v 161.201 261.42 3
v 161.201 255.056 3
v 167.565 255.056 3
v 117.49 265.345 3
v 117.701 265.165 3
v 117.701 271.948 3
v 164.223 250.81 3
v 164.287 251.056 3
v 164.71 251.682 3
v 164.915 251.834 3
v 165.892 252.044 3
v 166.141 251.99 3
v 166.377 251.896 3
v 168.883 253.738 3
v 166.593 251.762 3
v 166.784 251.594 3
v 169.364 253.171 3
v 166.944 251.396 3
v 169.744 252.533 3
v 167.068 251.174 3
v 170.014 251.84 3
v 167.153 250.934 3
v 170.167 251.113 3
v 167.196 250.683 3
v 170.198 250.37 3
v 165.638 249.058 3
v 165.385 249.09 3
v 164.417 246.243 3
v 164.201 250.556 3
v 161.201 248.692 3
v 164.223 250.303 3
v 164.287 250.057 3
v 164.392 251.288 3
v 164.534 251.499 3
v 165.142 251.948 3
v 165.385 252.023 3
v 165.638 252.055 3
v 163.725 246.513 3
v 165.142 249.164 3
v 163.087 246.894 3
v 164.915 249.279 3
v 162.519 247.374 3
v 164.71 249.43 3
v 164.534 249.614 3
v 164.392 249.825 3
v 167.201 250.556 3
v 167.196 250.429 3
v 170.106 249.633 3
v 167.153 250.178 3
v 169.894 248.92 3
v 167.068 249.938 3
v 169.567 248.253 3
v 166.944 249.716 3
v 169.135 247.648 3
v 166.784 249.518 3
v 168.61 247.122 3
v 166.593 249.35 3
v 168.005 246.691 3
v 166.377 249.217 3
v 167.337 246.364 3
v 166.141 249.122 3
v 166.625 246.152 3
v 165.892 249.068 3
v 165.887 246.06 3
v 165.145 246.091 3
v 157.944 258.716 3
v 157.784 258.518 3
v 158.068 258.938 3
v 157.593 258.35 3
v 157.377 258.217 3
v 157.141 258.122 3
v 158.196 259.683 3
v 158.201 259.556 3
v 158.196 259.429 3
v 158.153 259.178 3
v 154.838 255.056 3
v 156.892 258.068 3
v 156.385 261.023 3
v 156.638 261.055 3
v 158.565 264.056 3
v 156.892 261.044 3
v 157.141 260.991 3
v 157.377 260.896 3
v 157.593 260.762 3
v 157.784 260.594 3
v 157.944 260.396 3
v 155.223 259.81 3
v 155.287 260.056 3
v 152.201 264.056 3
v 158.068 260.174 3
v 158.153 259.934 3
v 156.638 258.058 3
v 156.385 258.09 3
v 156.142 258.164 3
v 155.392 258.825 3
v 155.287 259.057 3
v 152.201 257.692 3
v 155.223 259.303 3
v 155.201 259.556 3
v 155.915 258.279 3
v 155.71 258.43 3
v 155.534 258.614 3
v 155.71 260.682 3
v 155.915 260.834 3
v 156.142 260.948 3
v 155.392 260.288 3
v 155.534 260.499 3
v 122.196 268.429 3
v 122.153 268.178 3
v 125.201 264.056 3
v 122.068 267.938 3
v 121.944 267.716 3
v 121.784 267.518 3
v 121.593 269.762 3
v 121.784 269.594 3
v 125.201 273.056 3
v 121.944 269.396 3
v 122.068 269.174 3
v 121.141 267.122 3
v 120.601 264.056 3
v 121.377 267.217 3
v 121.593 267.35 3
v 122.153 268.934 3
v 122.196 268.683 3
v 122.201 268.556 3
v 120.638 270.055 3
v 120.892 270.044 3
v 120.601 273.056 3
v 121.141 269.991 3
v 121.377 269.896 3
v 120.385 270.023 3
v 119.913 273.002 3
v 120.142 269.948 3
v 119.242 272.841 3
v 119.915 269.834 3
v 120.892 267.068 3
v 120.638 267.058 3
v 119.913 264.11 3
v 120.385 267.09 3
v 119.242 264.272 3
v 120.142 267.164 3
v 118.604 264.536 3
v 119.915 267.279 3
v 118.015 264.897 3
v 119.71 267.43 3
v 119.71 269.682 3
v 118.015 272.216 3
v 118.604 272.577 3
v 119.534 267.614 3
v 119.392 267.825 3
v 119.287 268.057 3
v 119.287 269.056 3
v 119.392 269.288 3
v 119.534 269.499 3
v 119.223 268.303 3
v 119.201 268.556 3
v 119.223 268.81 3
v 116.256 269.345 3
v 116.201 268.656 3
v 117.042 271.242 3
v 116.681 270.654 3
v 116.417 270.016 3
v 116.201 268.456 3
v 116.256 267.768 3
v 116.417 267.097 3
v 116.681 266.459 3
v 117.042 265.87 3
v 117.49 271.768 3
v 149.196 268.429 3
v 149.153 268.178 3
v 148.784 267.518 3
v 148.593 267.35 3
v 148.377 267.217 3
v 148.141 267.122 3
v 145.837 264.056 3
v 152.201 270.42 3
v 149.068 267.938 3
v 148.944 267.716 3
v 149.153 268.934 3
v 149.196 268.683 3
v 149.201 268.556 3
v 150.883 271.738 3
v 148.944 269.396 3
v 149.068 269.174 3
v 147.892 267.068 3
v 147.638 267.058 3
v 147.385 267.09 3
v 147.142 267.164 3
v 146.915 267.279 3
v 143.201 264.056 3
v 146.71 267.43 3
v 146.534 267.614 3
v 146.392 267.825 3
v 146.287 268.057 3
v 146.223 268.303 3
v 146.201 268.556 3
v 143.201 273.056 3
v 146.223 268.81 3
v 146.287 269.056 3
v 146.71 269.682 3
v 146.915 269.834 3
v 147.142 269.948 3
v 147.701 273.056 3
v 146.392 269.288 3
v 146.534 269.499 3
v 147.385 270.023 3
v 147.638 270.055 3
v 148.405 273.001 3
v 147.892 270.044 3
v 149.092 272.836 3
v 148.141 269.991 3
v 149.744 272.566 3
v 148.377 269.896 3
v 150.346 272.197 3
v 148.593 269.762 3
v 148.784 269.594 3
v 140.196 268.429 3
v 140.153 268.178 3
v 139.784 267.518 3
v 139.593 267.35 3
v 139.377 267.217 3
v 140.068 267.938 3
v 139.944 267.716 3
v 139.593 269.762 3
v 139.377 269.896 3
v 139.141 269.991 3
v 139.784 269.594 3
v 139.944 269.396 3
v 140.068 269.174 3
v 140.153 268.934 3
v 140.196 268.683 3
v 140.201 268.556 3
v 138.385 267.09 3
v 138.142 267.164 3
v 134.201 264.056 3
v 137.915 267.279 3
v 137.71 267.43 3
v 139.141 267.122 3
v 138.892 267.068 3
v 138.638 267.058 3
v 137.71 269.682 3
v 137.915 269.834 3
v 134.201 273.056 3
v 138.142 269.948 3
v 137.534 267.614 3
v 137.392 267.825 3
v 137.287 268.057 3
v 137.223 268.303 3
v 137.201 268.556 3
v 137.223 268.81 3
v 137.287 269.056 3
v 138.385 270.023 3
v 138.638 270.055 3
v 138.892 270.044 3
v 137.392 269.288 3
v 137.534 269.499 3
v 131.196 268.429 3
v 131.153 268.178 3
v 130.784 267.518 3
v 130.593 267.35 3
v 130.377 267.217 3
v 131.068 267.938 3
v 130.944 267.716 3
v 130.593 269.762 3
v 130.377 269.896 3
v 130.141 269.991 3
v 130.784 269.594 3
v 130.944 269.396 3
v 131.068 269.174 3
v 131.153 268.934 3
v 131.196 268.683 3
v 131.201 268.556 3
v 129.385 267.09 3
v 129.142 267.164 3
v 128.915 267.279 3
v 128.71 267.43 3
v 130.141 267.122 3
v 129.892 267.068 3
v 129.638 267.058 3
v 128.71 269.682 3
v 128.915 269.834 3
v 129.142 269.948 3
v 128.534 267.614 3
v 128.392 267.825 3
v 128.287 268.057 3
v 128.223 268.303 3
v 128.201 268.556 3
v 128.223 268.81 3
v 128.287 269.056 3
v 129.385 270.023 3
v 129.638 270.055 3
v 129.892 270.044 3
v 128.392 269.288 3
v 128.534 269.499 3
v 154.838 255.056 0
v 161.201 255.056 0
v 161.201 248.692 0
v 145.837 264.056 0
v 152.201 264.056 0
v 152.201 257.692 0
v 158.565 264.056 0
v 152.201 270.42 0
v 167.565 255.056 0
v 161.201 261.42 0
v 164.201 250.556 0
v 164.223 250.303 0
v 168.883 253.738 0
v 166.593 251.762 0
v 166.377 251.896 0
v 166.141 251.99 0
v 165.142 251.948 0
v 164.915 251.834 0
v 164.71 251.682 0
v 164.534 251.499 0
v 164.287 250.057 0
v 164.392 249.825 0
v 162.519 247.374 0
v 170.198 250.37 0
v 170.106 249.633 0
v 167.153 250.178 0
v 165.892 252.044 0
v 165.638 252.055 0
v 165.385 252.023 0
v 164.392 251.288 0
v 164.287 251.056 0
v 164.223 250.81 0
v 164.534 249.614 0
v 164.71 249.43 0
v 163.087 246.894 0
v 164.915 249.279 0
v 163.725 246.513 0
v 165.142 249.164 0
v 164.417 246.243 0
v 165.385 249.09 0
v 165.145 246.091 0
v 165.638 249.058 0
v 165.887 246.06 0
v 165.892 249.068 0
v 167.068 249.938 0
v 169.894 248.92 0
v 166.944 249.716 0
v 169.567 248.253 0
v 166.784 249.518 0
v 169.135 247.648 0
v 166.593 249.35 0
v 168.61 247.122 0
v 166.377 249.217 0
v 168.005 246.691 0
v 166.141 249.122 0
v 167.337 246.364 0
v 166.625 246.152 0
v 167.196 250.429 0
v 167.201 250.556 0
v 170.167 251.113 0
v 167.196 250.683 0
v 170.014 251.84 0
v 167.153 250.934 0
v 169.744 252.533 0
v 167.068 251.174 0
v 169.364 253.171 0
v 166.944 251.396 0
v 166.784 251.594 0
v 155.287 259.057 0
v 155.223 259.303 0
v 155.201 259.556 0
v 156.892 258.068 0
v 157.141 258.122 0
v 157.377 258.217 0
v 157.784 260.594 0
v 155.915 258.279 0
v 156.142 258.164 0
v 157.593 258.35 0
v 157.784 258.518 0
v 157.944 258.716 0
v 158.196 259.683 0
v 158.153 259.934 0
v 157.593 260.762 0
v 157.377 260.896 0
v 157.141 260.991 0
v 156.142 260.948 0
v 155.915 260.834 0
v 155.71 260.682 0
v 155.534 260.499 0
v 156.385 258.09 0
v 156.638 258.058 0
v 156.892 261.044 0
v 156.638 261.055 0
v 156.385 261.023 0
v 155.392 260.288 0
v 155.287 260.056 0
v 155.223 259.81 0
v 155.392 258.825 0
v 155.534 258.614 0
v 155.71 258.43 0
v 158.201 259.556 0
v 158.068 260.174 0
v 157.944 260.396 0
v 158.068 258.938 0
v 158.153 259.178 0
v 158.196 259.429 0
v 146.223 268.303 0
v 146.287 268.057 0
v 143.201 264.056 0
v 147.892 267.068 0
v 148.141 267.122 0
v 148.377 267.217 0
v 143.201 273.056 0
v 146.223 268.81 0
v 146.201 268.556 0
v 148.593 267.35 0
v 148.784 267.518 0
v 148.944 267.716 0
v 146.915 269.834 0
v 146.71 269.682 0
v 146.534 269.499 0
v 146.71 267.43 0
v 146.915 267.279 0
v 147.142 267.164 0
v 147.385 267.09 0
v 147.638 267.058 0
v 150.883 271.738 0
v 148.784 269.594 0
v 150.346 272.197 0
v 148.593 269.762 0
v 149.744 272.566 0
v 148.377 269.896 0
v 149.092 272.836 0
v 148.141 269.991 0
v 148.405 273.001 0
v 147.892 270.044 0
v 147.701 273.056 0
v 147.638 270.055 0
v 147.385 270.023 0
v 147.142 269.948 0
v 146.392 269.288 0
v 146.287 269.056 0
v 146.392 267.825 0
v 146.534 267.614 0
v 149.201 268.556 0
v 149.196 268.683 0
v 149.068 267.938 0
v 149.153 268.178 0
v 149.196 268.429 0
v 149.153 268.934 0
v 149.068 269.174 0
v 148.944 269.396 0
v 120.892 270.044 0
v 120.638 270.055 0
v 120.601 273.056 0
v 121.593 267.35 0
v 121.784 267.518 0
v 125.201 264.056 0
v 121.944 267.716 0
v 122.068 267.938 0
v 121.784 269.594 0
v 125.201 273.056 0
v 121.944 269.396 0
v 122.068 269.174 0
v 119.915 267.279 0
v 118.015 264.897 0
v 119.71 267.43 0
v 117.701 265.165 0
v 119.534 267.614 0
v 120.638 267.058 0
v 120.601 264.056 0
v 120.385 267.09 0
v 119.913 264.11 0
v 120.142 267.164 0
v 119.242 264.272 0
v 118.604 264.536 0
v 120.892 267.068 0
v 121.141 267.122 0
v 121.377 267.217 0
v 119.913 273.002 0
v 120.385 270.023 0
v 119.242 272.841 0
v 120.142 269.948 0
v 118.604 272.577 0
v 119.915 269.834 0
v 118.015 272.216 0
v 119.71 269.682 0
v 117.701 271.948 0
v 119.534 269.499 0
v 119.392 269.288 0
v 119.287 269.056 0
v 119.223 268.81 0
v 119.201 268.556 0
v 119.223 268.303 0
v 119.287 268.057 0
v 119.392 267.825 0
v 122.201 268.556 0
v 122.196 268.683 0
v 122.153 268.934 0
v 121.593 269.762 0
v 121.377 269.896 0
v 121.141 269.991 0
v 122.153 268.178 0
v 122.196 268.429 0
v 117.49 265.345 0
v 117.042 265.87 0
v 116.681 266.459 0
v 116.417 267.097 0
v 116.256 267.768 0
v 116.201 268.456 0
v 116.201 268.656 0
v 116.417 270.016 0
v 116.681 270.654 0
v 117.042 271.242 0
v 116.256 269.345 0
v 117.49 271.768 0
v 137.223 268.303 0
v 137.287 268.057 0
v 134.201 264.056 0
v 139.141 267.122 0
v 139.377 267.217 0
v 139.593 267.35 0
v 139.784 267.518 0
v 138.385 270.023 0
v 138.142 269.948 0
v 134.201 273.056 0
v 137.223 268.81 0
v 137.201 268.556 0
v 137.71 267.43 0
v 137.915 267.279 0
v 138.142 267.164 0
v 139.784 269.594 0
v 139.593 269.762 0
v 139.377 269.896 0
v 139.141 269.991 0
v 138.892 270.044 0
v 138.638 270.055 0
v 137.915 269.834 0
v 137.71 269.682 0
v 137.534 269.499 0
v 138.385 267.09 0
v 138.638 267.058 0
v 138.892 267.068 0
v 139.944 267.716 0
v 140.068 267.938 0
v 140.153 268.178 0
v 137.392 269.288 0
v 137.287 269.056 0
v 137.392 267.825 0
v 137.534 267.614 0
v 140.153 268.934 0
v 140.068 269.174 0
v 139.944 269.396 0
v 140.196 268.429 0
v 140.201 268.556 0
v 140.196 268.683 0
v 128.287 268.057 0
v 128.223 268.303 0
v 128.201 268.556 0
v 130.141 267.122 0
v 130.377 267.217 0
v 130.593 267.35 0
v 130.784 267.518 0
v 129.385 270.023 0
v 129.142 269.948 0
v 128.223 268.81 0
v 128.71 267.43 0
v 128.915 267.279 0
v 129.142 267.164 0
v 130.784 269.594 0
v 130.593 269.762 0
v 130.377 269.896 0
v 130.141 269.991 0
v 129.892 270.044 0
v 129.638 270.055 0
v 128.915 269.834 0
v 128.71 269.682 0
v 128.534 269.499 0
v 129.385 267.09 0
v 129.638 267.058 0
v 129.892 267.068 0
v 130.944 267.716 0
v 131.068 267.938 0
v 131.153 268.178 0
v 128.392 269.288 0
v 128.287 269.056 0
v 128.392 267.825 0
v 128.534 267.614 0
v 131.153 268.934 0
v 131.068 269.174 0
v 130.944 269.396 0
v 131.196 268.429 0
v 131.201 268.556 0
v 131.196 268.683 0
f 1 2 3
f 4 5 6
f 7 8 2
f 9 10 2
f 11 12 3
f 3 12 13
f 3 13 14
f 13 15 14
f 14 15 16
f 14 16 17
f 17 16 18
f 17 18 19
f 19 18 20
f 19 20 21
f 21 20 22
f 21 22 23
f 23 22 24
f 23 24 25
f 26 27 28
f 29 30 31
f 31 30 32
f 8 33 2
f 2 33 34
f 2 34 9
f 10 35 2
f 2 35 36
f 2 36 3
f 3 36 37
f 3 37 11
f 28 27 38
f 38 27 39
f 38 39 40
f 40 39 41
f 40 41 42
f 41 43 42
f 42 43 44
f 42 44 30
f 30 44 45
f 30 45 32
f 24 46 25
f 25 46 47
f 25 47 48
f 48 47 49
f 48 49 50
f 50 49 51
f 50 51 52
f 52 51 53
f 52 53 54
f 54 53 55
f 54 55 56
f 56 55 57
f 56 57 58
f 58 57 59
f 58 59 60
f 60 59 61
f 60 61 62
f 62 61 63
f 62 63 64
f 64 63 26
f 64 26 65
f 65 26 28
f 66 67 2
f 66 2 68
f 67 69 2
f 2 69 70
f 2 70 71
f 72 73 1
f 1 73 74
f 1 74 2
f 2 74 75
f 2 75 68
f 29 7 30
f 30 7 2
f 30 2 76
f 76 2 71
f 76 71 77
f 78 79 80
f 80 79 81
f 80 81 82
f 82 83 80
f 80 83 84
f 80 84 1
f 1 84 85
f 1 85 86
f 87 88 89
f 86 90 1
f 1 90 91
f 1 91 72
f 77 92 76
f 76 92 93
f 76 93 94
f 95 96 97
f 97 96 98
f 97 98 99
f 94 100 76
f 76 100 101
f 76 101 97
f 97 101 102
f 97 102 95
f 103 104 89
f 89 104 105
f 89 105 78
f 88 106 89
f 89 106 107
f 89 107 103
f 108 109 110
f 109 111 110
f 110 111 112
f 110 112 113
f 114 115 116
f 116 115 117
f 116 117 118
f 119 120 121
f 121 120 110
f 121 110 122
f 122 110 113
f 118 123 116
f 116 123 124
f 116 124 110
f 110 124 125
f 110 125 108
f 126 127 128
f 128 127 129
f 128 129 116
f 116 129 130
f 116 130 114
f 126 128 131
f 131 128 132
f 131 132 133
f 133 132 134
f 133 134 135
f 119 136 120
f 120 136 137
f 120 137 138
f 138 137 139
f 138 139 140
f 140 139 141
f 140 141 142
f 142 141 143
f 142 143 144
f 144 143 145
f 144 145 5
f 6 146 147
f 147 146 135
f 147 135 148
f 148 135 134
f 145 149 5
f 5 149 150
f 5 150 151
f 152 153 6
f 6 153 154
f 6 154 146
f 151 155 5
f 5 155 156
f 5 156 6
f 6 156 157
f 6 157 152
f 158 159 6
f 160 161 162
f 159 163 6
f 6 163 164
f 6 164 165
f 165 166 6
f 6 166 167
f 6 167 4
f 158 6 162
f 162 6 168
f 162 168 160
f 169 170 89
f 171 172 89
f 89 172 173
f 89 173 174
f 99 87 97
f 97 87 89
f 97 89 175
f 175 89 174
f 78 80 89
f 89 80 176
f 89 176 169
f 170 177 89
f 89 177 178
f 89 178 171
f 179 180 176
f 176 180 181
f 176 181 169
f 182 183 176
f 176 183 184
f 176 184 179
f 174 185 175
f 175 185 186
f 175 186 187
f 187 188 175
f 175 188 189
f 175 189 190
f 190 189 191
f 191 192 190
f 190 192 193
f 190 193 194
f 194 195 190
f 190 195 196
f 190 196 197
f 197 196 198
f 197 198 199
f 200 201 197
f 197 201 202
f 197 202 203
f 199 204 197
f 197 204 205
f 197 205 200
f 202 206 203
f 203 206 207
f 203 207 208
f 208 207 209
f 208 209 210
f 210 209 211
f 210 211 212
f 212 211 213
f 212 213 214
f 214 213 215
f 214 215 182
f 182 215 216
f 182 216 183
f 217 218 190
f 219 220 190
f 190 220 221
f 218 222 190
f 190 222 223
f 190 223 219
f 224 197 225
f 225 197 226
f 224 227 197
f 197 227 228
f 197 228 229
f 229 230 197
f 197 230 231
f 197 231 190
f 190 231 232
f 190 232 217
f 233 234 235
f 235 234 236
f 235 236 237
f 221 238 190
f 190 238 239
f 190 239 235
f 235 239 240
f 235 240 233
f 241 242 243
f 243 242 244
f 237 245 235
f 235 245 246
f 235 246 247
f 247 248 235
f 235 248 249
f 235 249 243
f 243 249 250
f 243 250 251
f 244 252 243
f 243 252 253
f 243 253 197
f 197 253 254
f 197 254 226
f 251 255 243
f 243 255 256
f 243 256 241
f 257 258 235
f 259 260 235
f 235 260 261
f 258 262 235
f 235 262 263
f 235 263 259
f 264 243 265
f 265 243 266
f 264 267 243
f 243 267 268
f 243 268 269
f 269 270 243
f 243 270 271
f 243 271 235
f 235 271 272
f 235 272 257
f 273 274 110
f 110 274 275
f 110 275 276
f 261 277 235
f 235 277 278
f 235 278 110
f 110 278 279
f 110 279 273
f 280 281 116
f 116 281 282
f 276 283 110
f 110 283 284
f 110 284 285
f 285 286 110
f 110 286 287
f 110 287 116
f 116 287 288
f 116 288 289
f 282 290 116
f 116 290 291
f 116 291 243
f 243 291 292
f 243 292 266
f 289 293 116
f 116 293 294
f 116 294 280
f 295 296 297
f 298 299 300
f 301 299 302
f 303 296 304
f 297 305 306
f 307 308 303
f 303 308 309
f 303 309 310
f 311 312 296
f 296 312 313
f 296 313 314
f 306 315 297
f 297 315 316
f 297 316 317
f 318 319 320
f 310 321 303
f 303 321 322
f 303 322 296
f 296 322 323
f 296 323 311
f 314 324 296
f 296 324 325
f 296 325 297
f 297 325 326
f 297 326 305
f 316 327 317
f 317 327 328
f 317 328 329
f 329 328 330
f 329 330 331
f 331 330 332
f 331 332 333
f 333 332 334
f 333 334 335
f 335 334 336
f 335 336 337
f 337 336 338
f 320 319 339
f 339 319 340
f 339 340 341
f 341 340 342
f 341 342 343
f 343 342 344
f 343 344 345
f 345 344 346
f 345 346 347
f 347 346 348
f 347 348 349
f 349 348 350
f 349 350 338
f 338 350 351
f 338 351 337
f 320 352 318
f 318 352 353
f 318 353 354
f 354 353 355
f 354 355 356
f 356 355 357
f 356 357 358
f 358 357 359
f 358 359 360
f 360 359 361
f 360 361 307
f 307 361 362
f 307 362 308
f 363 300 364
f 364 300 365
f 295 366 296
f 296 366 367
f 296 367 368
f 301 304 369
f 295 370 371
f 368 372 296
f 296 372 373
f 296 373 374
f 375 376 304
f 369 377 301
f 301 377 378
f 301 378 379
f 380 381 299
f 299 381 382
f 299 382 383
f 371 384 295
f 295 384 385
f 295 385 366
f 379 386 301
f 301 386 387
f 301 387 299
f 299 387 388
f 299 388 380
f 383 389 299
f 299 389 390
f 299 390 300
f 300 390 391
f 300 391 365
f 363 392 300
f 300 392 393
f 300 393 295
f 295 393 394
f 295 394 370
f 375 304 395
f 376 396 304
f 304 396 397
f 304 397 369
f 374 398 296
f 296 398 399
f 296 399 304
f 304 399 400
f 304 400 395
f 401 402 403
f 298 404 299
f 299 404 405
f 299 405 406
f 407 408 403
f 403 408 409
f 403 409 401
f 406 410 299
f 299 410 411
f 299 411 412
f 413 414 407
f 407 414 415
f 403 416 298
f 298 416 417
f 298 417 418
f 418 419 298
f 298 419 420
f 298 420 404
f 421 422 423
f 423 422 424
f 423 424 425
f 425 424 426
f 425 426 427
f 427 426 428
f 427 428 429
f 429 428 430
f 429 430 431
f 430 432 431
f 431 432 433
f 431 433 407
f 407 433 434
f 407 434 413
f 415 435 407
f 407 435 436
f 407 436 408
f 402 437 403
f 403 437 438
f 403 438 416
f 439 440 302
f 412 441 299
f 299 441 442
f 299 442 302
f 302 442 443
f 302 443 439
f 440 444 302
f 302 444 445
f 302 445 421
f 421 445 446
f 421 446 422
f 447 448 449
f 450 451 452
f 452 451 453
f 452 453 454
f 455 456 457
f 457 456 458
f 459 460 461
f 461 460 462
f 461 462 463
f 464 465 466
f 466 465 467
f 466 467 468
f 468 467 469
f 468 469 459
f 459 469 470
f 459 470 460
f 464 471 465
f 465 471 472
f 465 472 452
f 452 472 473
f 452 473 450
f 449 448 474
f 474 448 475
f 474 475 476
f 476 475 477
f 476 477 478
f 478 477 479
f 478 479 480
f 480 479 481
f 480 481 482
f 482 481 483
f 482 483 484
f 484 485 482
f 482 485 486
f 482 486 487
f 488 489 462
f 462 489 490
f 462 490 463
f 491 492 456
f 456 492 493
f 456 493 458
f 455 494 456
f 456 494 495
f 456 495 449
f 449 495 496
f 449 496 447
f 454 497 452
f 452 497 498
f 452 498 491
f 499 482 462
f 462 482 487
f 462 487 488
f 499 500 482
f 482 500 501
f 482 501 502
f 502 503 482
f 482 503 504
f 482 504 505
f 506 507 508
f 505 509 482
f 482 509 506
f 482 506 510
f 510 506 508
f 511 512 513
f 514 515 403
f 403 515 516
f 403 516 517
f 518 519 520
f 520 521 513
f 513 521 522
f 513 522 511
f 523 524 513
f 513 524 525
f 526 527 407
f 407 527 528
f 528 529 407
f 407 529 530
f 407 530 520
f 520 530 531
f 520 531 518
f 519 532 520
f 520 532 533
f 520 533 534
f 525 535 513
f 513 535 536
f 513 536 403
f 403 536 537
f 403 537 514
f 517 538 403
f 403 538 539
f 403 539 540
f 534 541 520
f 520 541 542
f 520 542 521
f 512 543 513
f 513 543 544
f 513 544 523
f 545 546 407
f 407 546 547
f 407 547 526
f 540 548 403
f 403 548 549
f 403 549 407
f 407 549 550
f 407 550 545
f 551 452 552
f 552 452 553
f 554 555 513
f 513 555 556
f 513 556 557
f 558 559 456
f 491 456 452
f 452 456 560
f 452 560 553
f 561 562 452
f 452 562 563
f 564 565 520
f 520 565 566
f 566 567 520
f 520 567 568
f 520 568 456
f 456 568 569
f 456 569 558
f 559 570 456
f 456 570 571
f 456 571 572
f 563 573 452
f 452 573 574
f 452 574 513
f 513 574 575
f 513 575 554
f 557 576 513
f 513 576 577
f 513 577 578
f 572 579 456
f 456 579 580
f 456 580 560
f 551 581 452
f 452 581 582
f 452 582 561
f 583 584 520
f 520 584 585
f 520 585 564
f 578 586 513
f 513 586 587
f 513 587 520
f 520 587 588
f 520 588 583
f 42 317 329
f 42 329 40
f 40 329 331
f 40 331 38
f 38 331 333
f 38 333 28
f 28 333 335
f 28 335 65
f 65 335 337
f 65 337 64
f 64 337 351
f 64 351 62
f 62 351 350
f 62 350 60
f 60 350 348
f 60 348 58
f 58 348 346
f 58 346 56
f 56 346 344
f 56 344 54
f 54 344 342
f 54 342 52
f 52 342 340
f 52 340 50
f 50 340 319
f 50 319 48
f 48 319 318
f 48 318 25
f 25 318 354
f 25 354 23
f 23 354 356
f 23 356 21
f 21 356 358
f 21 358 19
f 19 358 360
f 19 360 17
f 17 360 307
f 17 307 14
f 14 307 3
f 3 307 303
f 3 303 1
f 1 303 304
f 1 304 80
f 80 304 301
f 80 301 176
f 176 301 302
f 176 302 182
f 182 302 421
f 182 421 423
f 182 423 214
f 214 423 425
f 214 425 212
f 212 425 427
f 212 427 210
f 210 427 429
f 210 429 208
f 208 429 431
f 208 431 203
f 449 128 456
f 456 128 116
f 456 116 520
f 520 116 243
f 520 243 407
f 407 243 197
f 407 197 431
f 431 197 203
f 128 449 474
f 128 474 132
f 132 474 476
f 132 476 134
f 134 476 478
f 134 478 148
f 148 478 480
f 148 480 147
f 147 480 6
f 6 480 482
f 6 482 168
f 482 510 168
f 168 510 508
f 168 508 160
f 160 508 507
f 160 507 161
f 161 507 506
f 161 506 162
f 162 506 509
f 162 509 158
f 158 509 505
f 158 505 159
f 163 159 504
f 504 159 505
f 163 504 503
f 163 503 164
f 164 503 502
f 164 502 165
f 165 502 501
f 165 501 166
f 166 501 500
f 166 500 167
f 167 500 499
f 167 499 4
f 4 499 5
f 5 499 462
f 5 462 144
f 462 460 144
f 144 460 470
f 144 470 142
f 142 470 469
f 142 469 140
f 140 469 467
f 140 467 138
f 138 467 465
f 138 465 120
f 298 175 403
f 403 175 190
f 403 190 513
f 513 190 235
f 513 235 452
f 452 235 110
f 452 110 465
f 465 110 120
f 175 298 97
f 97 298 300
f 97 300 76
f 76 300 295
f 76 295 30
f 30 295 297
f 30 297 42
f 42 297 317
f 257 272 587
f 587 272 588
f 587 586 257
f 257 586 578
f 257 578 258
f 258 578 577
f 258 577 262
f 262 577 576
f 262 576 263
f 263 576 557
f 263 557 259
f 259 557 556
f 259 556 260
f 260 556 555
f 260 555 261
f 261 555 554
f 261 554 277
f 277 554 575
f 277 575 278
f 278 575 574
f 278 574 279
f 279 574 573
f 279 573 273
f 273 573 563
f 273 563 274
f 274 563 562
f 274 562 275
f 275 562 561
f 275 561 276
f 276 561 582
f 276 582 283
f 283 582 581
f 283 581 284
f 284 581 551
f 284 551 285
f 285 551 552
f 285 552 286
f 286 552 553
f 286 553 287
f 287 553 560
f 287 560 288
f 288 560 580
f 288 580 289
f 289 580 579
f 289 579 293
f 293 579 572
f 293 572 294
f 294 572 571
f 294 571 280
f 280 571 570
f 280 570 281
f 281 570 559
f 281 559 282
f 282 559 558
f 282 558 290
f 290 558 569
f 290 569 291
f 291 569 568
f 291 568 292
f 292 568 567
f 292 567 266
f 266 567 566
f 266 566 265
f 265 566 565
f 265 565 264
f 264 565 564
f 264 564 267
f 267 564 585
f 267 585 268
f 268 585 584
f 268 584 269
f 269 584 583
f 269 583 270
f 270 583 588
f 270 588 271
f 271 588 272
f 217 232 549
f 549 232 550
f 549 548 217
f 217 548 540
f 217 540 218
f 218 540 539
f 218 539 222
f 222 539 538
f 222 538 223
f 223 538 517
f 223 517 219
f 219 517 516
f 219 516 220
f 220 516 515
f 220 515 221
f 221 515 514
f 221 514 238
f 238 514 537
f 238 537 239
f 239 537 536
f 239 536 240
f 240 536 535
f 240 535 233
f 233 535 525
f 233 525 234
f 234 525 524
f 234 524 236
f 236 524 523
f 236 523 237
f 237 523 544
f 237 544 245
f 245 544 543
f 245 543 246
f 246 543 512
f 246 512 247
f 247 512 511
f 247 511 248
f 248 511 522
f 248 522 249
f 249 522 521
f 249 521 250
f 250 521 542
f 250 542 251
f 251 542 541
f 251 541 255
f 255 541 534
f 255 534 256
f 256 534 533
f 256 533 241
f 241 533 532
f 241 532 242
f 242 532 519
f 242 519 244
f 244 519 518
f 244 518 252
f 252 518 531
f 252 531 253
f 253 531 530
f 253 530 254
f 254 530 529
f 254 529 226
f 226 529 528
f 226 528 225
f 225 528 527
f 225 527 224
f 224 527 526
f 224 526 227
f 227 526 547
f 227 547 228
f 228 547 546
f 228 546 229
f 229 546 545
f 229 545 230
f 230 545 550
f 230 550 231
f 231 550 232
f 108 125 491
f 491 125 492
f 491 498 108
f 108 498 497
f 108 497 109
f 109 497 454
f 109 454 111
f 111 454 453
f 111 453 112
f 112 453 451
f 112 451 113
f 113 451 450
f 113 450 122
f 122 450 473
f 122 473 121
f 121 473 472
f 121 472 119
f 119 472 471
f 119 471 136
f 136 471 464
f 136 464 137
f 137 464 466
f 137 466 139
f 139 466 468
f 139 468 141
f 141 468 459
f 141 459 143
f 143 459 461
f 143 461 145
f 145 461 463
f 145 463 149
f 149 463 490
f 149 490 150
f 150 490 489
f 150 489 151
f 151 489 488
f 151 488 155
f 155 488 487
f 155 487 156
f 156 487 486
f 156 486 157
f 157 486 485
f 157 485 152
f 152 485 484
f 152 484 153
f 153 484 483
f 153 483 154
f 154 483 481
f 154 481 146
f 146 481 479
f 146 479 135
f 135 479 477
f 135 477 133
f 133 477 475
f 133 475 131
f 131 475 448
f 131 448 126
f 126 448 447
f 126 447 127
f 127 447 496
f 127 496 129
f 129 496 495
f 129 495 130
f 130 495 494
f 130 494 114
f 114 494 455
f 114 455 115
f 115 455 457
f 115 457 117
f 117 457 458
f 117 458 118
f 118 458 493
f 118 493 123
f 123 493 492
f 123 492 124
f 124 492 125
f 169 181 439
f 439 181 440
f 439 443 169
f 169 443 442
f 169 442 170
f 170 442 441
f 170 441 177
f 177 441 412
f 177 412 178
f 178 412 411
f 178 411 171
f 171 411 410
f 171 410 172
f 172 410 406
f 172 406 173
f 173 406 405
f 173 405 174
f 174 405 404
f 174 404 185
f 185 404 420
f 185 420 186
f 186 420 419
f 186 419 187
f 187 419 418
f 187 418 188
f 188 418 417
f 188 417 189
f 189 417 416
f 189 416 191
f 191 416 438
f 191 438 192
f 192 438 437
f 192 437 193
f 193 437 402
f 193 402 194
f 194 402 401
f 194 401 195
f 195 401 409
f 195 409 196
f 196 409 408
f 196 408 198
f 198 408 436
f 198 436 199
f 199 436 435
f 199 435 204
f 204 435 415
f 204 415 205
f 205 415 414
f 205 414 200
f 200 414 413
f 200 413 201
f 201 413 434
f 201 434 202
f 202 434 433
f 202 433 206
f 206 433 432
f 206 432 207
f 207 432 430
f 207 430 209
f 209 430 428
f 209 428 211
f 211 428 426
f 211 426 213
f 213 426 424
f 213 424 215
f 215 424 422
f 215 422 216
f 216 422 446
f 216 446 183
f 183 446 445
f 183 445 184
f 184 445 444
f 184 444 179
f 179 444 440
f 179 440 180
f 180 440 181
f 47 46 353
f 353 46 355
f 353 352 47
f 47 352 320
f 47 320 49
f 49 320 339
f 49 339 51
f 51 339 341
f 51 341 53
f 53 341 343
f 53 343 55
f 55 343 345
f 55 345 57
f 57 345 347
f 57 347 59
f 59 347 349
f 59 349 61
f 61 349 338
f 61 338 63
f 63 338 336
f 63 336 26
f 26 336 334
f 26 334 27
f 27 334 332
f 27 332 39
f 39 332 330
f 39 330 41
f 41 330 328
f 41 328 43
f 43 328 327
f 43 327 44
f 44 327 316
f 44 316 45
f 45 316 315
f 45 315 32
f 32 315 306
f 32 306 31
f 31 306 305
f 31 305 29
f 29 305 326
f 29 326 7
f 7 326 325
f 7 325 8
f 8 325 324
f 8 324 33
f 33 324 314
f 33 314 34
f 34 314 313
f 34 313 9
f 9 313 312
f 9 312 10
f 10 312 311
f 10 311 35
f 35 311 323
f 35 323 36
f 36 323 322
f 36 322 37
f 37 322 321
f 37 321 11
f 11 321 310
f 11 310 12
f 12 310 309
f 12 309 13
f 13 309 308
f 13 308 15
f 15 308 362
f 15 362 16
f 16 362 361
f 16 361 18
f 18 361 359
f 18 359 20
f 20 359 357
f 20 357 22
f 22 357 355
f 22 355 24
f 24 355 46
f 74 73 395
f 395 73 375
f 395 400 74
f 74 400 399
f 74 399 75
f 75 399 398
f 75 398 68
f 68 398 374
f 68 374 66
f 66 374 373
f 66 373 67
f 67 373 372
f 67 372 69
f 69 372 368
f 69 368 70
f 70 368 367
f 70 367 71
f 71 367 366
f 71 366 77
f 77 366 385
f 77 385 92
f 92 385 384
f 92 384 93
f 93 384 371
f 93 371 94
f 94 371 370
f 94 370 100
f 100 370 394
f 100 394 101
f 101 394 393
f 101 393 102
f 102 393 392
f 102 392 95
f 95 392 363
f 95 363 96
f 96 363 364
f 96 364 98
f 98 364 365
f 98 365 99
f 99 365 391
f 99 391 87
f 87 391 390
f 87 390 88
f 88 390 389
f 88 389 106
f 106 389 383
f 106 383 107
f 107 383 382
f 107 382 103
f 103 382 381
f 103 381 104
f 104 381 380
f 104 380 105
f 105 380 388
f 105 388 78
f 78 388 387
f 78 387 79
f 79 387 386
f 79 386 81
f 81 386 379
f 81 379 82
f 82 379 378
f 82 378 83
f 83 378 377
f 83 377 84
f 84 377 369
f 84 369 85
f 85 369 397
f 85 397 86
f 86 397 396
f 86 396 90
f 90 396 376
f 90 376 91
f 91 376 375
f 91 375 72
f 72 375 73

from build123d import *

# Parameters (mm, degrees)
MODEL_R                 = 1.5
SALIENTE_EXTRUIR1_DEPTH = 3


with BuildPart() as part:
    # Model → Saliente-Extruir1 (new body)
    with BuildSketch(Plane.XY):
        with BuildLine():
            Line((145.837507261, 264.056255289), (162.519487777, 247.374274774))
            ThreePointArc((162.519487777, 247.374274774), (168.883448807, 247.374274774), (168.883448807, 253.738235805))
            Line((168.883448807, 253.738235805), (150.883448807, 271.738235805))
            ThreePointArc((150.883448807, 271.738235805), (149.423543738, 272.713713186), (147.701468292, 273.056255289))
            Line((147.701468292, 273.056255289), (120.601468292, 273.056255289))
            ThreePointArc((120.601468292, 273.056255289), (117.490198455, 271.767525127), (116.201468292, 268.656255289))
            Line((116.201468292, 268.656255289), (116.201468292, 268.456255289))
            ThreePointArc((116.201468292, 268.456255289), (117.490198455, 265.344985452), (120.601468292, 264.056255289))
            Line((120.601468292, 264.056255289), (145.837507261, 264.056255289))
        make_face()
        with Locations((129.701468292, 268.556255289)):
            Circle(MODEL_R, mode=Mode.SUBTRACT)
        with Locations((138.701468292, 268.556255289)):
            Circle(MODEL_R, mode=Mode.SUBTRACT)
        with Locations((120.701468292, 268.556255289)):
            Circle(MODEL_R, mode=Mode.SUBTRACT)
        with Locations((147.701468292, 268.556255289)):
            Circle(MODEL_R, mode=Mode.SUBTRACT)
        with Locations((165.701468292, 250.556255289)):
            Circle(MODEL_R, mode=Mode.SUBTRACT)
        with Locations((156.701468292, 259.556255289)):
            Circle(MODEL_R, mode=Mode.SUBTRACT)
    extrude(amount=SALIENTE_EXTRUIR1_DEPTH)


solid = part.part
